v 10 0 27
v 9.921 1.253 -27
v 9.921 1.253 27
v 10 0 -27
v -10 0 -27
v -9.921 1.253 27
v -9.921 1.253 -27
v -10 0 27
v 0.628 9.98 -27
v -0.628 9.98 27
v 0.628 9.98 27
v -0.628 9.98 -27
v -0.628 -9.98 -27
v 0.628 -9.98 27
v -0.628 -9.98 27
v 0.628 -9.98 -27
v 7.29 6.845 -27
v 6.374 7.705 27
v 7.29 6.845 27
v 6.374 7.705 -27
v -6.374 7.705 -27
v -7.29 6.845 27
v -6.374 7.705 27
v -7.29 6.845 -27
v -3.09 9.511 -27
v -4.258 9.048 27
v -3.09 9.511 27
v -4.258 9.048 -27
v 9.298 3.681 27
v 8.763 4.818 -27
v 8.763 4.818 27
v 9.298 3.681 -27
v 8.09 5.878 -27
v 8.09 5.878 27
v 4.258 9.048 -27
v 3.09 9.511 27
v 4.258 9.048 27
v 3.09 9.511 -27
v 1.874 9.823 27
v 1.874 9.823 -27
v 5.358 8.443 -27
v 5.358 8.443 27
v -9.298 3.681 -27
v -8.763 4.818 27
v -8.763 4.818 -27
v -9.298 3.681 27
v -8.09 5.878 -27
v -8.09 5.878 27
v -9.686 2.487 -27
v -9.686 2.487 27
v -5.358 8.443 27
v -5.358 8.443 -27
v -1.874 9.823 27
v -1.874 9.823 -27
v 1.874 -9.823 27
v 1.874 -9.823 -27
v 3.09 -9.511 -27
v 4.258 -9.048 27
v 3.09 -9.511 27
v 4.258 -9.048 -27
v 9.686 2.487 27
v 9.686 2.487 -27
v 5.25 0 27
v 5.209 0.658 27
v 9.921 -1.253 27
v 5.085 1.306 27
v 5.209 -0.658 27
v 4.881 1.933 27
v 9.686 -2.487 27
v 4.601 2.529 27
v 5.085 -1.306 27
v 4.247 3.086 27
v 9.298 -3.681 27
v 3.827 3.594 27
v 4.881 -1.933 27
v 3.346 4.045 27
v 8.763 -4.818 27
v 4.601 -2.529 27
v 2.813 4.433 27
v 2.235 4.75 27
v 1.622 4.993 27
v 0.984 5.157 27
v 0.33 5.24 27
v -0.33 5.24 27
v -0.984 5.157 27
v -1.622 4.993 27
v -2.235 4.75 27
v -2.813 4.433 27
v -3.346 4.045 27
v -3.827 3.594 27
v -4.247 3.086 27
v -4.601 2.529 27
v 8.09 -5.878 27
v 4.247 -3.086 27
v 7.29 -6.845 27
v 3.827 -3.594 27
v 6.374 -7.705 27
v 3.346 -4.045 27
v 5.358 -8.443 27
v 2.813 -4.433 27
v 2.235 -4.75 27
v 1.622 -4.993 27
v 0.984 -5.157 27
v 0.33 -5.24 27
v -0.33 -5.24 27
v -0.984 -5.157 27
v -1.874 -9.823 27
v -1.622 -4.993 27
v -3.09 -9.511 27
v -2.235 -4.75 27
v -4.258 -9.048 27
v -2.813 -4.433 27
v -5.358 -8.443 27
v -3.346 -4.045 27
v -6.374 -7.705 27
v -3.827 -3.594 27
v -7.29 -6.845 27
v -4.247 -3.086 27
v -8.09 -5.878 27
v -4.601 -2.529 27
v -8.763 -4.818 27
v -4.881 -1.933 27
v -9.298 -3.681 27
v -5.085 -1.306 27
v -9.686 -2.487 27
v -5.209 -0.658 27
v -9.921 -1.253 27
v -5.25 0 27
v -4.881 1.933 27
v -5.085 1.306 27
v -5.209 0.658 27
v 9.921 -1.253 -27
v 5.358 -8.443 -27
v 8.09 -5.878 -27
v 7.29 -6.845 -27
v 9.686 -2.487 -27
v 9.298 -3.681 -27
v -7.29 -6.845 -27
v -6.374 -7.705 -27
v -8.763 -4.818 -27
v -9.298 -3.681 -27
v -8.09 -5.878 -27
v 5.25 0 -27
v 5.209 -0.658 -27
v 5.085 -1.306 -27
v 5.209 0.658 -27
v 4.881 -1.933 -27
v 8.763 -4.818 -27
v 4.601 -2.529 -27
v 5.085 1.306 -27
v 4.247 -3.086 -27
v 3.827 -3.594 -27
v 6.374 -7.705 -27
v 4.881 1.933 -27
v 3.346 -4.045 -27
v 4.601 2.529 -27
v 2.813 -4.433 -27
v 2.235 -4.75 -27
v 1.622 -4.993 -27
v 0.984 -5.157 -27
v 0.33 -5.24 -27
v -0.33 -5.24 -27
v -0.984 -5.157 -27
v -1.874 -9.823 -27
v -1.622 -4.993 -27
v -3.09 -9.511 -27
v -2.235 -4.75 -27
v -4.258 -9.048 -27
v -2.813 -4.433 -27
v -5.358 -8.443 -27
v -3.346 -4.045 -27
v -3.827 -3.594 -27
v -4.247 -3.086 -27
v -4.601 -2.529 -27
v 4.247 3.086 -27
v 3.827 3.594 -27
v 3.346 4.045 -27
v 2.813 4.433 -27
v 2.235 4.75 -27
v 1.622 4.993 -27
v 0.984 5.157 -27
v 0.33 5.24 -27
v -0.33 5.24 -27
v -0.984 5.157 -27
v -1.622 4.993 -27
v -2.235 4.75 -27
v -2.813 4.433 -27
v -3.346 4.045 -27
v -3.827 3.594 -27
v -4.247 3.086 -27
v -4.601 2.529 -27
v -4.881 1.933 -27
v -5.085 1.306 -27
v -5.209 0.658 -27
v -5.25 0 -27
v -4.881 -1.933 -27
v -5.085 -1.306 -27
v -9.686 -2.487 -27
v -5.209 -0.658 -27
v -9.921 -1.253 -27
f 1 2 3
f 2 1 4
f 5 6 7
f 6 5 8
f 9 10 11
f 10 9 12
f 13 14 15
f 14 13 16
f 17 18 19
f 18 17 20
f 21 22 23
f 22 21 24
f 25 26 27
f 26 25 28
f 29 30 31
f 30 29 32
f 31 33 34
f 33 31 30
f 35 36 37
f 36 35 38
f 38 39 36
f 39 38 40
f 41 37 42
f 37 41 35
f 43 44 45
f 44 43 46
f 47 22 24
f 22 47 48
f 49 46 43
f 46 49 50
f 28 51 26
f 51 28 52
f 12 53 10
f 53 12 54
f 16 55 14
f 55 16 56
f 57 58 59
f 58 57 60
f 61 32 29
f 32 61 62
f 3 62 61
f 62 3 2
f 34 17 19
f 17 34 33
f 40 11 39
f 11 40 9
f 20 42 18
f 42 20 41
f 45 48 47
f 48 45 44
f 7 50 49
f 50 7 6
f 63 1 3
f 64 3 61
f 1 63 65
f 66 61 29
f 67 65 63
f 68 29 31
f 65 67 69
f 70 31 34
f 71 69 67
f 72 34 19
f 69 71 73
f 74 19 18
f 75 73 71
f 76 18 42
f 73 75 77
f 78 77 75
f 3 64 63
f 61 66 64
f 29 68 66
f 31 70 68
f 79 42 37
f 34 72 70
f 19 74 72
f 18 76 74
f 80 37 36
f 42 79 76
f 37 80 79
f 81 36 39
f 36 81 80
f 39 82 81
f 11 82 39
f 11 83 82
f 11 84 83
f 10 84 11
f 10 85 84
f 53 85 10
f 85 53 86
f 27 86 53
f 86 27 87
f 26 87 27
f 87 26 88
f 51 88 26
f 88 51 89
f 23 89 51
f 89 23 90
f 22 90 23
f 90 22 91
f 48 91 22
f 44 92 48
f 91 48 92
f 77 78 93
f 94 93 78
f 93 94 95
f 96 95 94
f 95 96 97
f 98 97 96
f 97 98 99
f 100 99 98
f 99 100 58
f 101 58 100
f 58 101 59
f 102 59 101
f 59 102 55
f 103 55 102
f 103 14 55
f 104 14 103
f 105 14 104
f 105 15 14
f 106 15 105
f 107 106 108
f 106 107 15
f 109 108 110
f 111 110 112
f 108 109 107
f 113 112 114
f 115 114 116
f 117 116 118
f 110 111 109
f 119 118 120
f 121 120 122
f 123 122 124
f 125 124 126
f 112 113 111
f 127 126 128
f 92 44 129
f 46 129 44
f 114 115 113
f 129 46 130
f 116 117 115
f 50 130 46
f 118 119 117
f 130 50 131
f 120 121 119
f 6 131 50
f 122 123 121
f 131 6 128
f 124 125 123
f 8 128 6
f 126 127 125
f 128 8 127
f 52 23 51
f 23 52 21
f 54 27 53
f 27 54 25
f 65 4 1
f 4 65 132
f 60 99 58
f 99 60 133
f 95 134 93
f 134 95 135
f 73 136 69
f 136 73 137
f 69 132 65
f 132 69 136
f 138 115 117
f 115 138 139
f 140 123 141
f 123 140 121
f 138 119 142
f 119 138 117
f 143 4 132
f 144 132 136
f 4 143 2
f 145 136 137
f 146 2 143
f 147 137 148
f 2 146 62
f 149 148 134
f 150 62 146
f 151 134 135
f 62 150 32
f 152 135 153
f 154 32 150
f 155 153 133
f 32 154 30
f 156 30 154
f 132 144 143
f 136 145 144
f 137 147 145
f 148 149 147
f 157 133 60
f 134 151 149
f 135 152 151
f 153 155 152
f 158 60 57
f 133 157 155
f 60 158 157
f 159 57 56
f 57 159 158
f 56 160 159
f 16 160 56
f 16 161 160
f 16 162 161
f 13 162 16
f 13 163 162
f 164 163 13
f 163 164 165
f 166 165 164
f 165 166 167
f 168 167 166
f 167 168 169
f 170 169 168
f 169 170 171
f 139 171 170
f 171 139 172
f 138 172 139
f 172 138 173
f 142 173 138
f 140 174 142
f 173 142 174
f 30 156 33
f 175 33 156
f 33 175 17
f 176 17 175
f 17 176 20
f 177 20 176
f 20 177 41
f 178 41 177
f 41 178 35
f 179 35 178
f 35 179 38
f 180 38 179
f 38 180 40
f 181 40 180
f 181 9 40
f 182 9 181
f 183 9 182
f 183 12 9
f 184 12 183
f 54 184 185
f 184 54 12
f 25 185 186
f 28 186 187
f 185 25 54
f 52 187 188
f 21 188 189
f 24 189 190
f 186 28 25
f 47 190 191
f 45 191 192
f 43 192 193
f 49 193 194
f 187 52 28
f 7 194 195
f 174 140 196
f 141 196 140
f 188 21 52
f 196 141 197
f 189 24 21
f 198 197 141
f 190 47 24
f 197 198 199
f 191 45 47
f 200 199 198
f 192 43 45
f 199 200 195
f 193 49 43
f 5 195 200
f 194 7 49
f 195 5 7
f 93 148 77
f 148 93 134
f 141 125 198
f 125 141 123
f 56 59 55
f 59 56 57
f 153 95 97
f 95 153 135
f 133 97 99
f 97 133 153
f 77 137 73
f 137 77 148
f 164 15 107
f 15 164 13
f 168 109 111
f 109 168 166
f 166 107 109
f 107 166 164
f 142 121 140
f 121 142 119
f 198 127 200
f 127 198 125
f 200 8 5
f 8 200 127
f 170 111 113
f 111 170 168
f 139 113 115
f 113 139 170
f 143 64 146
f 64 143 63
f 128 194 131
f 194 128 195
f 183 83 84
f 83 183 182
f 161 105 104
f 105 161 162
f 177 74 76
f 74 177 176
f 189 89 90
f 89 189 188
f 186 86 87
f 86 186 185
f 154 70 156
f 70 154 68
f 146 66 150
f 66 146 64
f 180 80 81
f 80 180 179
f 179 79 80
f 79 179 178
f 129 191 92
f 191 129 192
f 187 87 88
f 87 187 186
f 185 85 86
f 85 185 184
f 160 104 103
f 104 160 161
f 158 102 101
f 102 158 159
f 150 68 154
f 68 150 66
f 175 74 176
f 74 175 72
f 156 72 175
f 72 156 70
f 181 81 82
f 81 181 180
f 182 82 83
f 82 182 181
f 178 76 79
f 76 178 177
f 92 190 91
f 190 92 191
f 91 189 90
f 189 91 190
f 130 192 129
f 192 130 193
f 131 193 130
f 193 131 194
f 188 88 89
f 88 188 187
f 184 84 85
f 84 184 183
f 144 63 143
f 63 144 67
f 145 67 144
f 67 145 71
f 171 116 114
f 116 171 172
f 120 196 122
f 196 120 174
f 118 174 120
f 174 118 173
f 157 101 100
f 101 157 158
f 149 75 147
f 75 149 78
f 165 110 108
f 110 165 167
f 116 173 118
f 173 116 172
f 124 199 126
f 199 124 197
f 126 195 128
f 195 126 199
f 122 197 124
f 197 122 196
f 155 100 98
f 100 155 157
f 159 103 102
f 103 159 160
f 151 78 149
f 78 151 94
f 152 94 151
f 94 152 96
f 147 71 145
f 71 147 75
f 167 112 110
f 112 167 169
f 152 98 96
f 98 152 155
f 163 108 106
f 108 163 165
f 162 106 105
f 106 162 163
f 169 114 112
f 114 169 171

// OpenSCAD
$fn = 50;


difference() {
	union() {
		translate(v = [0, 0, -27.0000000000]) {
			cylinder(h = 54, r = 10.0000000000);
		}
	}
	union() {
		translate(v = [0, 0, -100.0000000000]) {
			cylinder(h = 200, r = 5.2500000000);
		}
	}
}
